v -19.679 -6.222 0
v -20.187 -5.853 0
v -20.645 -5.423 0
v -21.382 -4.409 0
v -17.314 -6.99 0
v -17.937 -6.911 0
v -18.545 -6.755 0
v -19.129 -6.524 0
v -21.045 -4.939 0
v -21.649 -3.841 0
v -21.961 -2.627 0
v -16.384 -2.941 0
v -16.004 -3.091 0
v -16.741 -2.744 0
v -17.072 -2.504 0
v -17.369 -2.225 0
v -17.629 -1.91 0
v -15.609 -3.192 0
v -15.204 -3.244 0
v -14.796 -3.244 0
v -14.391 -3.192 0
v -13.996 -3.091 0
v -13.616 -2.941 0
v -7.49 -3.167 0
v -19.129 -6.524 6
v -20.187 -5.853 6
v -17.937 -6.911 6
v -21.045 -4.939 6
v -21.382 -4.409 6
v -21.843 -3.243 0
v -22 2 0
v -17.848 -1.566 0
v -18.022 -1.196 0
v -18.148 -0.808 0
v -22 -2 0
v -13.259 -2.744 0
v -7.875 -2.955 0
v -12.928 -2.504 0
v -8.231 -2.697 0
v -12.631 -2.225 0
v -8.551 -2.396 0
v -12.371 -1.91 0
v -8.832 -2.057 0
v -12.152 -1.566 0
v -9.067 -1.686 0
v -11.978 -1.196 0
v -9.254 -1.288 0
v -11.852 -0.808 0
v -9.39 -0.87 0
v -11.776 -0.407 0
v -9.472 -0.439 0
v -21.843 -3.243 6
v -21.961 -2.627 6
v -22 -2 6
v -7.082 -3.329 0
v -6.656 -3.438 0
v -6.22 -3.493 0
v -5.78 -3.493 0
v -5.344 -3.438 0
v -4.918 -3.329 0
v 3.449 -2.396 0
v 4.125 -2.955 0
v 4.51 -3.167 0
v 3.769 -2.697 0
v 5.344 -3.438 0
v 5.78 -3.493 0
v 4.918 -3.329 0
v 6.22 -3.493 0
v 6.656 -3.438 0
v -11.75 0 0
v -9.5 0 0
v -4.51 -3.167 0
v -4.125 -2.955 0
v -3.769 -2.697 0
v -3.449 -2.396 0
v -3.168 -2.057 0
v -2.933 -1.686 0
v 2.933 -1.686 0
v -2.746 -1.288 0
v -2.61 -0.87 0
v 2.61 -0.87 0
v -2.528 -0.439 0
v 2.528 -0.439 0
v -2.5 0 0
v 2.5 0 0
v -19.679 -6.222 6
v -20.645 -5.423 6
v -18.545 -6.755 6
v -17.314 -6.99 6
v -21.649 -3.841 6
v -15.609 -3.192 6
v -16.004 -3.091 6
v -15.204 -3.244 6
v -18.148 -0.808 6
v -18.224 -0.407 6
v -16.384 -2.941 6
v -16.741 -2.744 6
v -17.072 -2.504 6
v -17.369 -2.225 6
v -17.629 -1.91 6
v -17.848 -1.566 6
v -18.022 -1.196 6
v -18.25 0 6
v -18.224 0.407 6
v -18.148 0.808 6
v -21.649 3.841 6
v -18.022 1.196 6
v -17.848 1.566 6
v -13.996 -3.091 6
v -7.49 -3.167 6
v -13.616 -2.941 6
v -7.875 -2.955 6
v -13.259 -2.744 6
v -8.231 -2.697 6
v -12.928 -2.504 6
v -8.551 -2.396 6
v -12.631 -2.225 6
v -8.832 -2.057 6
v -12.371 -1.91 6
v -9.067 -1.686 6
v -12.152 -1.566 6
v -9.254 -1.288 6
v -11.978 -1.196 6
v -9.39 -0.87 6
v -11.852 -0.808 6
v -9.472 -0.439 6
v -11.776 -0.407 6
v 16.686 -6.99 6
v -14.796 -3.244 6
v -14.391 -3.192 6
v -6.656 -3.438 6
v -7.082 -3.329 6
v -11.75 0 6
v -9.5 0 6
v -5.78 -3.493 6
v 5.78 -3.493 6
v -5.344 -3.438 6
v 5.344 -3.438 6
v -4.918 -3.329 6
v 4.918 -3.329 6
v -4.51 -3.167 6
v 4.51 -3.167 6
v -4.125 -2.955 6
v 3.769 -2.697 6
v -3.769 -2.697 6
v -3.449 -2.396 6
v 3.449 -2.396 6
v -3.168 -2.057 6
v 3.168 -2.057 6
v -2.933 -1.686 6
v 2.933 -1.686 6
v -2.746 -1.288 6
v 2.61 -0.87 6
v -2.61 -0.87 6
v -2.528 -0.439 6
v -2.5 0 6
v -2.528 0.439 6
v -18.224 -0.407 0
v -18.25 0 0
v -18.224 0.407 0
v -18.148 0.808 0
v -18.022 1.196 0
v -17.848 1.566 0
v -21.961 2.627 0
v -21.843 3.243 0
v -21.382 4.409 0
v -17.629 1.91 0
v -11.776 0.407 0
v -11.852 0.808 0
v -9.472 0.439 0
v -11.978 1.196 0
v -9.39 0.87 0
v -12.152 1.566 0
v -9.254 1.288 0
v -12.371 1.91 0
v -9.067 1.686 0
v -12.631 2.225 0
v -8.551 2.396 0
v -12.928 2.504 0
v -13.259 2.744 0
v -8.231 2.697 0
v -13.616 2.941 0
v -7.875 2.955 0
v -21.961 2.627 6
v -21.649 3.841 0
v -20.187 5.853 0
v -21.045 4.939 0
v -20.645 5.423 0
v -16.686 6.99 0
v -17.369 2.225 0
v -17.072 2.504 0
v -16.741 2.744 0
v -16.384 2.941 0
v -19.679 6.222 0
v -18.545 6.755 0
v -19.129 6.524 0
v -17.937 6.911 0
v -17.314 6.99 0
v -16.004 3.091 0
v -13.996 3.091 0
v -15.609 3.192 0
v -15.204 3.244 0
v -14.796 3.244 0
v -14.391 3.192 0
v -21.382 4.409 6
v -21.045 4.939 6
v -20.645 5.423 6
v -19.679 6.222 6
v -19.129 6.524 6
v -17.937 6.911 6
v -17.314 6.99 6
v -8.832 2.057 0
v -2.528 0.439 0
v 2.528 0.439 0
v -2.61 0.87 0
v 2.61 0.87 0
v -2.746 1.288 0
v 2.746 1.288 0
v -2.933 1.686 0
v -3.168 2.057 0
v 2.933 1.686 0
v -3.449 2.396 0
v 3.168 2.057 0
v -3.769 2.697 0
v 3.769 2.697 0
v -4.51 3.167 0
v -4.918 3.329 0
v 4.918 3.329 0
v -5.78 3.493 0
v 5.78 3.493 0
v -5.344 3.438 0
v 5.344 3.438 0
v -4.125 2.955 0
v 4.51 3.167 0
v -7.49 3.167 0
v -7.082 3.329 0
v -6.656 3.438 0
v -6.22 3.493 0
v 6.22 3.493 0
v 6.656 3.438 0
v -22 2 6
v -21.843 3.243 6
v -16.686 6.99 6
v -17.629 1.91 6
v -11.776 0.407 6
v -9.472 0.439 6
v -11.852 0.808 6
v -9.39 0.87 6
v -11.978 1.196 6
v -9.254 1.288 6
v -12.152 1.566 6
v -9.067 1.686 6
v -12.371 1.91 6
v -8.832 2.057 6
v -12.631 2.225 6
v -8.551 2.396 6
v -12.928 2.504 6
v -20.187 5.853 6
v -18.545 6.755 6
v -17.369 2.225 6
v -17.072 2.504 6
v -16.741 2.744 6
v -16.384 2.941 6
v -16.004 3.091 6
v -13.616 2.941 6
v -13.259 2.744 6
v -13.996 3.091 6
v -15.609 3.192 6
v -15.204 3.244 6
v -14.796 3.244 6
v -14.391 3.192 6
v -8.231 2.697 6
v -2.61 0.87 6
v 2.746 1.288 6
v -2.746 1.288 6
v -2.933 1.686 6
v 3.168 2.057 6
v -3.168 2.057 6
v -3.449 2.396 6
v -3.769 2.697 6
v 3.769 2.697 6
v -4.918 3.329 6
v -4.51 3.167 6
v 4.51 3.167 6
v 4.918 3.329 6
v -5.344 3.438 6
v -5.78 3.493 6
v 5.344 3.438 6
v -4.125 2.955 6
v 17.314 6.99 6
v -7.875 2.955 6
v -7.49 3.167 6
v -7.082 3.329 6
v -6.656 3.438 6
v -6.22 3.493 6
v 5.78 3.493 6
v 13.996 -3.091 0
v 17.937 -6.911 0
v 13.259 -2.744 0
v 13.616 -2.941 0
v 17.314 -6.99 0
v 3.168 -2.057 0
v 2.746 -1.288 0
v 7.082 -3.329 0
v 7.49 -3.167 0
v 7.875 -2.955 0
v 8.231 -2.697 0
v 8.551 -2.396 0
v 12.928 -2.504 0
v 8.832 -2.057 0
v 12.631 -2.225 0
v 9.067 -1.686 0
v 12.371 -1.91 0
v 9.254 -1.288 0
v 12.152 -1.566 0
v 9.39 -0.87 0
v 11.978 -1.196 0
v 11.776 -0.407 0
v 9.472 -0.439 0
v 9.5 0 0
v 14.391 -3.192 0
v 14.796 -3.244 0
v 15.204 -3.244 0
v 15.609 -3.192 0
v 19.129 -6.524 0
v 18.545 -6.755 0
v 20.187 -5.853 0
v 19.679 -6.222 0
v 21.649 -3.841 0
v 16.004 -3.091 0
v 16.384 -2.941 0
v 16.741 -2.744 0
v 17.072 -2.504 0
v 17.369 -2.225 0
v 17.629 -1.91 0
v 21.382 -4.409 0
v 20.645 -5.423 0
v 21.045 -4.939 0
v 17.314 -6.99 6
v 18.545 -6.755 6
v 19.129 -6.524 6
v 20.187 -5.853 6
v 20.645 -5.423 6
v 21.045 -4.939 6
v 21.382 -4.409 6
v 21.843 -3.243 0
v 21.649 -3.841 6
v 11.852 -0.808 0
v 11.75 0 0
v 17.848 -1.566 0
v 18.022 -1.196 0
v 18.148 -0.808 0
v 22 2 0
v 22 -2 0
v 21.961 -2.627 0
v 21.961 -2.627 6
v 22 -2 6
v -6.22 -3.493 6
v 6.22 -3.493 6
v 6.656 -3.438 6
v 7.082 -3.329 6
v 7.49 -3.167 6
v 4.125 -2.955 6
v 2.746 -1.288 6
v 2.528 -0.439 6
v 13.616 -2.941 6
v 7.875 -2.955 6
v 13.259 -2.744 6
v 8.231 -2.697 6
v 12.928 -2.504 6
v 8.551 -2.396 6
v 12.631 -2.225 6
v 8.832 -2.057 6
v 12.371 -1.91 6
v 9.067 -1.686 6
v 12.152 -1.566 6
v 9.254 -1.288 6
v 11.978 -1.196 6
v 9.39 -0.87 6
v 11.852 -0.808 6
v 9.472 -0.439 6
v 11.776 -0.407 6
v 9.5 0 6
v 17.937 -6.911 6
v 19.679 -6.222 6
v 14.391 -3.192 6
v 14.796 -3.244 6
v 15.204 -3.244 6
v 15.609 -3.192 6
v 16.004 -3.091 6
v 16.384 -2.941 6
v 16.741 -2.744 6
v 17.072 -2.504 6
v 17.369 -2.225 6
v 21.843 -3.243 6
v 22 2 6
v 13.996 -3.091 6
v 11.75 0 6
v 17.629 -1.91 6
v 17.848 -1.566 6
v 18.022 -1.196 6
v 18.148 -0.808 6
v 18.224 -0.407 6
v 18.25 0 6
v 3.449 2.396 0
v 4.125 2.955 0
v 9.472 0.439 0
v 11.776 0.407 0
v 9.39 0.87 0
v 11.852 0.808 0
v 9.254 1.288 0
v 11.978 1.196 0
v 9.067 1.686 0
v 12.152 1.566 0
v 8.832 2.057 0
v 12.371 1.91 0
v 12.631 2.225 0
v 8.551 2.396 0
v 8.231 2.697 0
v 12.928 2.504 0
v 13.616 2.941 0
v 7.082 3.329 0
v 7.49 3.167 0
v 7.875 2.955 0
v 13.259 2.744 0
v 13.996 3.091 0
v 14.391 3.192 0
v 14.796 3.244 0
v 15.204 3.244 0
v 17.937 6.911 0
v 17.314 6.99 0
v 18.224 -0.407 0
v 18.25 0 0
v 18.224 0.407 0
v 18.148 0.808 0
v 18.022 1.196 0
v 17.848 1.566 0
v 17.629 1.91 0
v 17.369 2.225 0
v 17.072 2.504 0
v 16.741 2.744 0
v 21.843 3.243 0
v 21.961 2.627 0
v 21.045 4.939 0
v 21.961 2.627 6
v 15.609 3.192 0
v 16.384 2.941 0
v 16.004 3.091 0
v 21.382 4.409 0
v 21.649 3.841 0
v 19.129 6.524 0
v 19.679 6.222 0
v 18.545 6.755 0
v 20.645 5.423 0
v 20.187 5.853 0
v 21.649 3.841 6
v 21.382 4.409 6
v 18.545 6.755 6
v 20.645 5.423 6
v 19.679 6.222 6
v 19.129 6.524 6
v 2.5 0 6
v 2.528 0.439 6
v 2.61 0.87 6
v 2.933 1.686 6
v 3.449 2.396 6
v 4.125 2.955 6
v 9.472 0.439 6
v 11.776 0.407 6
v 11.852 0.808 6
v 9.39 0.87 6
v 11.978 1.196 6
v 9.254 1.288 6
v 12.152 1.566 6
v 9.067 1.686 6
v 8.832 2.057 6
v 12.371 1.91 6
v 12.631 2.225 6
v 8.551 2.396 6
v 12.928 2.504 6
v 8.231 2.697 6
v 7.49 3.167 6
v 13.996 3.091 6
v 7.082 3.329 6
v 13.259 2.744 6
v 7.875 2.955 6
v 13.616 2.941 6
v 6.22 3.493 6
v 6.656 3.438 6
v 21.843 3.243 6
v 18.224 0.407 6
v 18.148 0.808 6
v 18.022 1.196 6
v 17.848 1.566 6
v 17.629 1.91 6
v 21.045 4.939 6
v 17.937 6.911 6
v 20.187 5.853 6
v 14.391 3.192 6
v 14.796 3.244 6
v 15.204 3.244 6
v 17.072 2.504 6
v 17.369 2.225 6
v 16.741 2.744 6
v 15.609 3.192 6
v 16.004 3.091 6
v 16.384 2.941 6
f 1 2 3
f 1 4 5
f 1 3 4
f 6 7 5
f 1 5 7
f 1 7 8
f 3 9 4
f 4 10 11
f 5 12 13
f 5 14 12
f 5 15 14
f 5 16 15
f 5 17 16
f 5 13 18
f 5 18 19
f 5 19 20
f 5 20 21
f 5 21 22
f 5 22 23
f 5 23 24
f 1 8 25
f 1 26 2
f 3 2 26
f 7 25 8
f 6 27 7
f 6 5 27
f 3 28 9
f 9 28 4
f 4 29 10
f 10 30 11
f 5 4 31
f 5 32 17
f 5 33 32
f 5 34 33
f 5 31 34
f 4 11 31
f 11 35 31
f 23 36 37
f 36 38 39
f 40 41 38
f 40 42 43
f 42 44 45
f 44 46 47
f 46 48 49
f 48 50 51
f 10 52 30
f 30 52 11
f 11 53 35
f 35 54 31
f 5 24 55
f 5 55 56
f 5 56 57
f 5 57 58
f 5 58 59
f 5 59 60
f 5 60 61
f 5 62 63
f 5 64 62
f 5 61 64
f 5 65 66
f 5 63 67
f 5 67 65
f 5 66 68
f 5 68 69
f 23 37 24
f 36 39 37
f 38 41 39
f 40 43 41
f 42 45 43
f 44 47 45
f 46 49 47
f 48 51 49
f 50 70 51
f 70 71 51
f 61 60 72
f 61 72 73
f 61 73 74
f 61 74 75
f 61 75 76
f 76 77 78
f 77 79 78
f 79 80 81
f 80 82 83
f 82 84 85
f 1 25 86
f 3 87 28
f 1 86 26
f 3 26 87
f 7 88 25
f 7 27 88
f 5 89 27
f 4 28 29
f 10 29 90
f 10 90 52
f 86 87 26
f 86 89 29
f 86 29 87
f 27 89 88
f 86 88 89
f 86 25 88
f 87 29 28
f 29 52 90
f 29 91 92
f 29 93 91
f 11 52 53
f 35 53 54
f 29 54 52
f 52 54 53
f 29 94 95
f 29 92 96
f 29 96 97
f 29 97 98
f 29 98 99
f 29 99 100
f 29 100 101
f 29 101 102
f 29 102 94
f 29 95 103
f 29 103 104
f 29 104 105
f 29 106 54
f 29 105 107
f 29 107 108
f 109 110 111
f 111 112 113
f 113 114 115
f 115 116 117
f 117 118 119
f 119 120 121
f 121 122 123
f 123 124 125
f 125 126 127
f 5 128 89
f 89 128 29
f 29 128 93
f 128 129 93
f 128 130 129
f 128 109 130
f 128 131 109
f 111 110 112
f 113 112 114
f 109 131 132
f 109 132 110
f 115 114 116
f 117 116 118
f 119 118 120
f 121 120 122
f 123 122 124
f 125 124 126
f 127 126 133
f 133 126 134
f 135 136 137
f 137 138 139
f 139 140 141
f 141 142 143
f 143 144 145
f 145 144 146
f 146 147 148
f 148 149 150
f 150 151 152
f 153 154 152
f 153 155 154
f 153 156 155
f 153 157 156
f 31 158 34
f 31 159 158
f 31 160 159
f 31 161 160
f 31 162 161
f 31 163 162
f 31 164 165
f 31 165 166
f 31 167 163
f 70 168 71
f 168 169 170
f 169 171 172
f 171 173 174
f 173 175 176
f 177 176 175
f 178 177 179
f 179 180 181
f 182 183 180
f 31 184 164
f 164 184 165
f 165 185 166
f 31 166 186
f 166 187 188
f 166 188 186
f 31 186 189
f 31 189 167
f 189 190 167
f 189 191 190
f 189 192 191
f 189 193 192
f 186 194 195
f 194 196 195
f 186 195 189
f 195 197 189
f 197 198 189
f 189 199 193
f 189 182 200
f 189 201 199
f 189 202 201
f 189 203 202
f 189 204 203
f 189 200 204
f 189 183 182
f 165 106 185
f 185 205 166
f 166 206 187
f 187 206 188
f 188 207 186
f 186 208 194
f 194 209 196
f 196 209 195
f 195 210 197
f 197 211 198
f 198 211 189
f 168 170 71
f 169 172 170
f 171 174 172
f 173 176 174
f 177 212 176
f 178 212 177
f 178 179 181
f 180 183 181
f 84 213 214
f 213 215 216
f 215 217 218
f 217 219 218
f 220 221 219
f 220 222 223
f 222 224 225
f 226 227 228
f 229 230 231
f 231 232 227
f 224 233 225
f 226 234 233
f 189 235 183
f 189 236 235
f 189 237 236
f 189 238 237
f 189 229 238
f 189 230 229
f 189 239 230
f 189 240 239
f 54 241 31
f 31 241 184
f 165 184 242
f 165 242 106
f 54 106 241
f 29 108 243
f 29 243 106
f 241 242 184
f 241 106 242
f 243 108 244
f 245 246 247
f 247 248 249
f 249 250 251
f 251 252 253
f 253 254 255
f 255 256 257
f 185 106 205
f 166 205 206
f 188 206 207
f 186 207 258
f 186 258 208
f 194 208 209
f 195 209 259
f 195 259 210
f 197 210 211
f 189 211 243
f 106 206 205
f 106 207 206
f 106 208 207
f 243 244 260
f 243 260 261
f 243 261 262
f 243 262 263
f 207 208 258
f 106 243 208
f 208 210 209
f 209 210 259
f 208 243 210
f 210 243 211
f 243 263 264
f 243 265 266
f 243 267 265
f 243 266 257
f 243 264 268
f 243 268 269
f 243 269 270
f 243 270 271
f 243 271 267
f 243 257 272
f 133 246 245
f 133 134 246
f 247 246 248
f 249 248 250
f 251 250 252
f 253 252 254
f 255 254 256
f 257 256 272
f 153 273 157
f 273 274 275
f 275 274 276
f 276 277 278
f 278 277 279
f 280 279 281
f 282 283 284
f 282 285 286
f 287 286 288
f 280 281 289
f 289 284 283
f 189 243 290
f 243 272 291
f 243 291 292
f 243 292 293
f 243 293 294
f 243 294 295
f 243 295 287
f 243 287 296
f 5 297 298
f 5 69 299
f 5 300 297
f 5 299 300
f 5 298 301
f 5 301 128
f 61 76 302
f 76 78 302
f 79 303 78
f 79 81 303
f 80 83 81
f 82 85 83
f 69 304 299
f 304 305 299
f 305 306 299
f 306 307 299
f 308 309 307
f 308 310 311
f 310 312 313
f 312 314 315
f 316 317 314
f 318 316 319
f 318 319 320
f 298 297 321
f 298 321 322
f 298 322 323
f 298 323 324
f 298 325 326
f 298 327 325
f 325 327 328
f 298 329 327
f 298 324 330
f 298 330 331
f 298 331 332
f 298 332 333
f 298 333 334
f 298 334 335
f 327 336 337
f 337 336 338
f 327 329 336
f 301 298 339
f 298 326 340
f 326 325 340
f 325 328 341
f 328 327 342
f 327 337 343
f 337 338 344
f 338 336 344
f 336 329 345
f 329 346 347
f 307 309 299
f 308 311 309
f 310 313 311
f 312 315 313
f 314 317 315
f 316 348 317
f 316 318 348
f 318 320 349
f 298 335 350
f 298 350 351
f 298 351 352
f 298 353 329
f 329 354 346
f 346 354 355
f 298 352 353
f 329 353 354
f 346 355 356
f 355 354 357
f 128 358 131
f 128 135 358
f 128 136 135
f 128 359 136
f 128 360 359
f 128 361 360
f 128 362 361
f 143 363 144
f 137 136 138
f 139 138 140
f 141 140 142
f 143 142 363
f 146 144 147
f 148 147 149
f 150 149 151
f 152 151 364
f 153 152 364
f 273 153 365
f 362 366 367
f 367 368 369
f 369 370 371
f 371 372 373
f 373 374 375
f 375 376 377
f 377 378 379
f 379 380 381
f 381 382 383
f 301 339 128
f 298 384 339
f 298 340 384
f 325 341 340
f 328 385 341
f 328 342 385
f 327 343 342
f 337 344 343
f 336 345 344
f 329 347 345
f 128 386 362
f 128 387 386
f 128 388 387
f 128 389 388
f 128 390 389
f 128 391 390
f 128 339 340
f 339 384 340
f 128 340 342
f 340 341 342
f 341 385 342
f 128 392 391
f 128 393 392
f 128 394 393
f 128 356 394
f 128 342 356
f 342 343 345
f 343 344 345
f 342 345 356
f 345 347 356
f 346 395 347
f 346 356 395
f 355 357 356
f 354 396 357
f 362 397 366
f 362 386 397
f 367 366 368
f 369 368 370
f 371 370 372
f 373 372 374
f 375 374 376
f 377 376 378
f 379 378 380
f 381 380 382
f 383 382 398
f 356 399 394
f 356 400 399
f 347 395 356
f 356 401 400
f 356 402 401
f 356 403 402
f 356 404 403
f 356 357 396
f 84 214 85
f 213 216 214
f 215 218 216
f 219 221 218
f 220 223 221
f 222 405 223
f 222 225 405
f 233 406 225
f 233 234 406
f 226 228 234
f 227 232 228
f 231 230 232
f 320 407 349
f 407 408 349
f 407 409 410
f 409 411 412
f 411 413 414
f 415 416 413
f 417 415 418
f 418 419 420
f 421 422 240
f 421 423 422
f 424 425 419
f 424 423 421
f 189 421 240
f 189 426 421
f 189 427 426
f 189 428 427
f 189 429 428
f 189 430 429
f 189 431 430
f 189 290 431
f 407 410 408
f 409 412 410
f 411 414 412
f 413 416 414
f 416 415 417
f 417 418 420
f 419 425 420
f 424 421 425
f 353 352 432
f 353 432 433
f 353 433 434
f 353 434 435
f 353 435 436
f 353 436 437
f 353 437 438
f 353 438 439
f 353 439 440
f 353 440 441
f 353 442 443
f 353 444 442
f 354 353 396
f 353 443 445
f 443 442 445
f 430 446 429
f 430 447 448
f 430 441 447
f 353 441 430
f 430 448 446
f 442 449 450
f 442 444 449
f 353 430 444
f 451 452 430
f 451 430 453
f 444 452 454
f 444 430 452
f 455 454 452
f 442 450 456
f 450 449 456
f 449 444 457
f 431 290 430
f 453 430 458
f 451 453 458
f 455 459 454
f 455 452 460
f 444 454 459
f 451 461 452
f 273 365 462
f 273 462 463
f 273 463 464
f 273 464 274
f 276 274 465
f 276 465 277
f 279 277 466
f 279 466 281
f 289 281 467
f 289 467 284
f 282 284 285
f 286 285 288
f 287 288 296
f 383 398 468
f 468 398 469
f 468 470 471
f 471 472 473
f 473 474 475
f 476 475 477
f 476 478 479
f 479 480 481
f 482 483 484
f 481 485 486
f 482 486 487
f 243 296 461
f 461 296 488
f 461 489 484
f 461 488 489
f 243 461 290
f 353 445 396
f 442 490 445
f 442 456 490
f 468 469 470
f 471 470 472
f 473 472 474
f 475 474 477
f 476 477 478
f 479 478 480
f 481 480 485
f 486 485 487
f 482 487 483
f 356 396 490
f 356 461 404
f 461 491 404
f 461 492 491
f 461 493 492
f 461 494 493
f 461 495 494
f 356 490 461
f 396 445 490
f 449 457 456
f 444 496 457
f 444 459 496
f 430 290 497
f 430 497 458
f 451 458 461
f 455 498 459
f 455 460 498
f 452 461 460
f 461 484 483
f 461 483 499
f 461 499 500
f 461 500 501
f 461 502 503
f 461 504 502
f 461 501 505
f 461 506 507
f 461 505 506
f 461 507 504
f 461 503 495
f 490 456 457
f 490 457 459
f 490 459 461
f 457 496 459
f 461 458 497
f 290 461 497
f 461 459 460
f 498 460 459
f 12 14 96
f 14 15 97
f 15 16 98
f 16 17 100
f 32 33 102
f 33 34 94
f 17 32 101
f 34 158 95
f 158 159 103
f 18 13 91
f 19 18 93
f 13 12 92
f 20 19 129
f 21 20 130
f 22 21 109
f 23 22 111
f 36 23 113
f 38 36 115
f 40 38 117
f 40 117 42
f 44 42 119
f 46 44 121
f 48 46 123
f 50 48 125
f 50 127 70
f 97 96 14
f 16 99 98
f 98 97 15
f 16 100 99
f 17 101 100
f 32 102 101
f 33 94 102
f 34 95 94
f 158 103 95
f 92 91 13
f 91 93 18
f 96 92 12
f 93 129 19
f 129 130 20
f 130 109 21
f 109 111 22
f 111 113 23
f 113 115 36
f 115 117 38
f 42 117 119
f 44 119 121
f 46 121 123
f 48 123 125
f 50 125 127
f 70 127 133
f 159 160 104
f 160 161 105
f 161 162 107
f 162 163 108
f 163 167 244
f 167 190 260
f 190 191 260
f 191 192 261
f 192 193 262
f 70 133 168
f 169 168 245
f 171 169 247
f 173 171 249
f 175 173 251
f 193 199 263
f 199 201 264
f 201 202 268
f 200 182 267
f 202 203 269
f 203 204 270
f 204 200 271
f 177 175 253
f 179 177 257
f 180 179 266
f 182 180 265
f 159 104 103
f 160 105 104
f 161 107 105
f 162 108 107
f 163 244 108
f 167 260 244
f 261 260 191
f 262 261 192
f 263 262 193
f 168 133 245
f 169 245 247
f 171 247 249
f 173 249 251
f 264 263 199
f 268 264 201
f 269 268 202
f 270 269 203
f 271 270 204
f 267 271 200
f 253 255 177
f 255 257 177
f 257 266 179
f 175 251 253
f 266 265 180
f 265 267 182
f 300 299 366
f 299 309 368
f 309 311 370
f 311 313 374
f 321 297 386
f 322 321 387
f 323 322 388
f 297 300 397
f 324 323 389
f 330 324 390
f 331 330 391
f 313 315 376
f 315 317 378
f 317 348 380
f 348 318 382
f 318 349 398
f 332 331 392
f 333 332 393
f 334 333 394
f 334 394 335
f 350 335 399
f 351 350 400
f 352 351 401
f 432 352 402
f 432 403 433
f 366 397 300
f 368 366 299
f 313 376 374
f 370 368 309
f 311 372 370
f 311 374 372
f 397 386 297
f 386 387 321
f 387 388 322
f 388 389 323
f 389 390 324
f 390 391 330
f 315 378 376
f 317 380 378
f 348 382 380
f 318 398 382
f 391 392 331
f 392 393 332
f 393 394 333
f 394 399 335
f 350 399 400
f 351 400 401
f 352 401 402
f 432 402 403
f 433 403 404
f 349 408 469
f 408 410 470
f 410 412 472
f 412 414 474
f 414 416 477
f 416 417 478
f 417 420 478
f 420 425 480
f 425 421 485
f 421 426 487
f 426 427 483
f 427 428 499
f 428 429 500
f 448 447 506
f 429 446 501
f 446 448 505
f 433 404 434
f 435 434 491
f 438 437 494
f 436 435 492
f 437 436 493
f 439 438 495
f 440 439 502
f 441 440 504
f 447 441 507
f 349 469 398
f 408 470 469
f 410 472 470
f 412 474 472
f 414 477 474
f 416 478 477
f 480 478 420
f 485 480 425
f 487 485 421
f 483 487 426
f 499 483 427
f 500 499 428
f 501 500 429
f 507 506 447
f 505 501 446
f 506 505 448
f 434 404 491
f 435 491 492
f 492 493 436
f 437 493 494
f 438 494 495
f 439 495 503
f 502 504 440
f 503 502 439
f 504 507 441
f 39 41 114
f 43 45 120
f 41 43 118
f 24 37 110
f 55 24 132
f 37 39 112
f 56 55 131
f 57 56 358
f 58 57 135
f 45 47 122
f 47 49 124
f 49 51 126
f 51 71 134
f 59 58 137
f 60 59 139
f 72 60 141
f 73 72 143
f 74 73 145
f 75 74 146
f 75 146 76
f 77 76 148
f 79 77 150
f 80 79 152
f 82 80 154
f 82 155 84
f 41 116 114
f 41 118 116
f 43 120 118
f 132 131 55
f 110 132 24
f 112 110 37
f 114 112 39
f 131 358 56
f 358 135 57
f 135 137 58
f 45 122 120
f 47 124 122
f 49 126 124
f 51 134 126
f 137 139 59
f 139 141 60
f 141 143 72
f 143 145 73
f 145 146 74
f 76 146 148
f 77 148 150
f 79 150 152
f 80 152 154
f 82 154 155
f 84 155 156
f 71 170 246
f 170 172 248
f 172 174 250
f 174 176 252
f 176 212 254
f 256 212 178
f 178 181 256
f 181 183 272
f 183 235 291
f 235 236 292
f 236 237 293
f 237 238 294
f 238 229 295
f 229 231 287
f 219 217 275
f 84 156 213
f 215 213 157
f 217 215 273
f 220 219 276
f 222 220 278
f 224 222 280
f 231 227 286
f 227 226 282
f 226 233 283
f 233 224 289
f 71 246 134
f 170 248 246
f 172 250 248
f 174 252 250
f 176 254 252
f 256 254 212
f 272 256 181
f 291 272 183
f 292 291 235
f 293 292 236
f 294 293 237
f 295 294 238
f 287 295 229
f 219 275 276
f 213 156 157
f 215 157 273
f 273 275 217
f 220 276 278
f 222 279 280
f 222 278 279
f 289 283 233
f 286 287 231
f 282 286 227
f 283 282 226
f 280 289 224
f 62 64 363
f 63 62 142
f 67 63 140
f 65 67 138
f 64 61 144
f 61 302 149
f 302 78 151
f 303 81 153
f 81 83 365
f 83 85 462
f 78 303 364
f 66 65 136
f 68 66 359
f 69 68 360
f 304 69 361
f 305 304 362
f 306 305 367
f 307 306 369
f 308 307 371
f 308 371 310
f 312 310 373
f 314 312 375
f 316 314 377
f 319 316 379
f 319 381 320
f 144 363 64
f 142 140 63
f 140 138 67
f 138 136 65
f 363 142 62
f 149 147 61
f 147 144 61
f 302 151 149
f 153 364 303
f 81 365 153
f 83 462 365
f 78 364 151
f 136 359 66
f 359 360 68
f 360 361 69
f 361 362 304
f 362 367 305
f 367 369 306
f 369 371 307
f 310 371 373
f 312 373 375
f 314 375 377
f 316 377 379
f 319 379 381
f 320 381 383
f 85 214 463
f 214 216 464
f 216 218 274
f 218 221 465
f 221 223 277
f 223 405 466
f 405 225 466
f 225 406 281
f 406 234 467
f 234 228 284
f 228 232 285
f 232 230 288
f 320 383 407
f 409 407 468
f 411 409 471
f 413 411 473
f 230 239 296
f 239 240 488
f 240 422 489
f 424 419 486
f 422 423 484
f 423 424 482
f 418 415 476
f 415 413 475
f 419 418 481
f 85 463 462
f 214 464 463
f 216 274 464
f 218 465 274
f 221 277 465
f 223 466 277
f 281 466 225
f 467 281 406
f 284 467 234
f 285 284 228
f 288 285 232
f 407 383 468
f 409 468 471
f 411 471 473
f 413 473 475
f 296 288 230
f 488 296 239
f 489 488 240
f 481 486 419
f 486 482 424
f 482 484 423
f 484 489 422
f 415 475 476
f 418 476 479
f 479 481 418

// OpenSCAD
$fn = 50;

difference() {
	union() {
		hull() {
			translate(v = [-17.0, 2.0, 0]) {
				cylinder(h = 6, r = 5);
			}
			translate(v = [17.0, 2.0, 0]) {
				cylinder(h = 6, r = 5);
			}
			translate(v = [-17.0, -2.0, 0]) {
				cylinder(h = 6, r = 5);
			}
			translate(v = [17.0, -2.0, 0]) {
				cylinder(h = 6, r = 5);
			}
		}
	}
	union() {
		translate(v = [-15.0, 0.0, 0]) {
			cylinder(h = 6, r = 3.25);
		}
		translate(v = [15.0, 0.0, 0]) {
			cylinder(h = 6, r = 3.25);
		}
		translate(v = [-6.0, 0, 0.0]) {
			cylinder(h = 6, r = 3.5);
		}
		translate(v = [6.0, 0, 0.0]) {
			cylinder(h = 6, r = 3.5);
		}
	}
}
